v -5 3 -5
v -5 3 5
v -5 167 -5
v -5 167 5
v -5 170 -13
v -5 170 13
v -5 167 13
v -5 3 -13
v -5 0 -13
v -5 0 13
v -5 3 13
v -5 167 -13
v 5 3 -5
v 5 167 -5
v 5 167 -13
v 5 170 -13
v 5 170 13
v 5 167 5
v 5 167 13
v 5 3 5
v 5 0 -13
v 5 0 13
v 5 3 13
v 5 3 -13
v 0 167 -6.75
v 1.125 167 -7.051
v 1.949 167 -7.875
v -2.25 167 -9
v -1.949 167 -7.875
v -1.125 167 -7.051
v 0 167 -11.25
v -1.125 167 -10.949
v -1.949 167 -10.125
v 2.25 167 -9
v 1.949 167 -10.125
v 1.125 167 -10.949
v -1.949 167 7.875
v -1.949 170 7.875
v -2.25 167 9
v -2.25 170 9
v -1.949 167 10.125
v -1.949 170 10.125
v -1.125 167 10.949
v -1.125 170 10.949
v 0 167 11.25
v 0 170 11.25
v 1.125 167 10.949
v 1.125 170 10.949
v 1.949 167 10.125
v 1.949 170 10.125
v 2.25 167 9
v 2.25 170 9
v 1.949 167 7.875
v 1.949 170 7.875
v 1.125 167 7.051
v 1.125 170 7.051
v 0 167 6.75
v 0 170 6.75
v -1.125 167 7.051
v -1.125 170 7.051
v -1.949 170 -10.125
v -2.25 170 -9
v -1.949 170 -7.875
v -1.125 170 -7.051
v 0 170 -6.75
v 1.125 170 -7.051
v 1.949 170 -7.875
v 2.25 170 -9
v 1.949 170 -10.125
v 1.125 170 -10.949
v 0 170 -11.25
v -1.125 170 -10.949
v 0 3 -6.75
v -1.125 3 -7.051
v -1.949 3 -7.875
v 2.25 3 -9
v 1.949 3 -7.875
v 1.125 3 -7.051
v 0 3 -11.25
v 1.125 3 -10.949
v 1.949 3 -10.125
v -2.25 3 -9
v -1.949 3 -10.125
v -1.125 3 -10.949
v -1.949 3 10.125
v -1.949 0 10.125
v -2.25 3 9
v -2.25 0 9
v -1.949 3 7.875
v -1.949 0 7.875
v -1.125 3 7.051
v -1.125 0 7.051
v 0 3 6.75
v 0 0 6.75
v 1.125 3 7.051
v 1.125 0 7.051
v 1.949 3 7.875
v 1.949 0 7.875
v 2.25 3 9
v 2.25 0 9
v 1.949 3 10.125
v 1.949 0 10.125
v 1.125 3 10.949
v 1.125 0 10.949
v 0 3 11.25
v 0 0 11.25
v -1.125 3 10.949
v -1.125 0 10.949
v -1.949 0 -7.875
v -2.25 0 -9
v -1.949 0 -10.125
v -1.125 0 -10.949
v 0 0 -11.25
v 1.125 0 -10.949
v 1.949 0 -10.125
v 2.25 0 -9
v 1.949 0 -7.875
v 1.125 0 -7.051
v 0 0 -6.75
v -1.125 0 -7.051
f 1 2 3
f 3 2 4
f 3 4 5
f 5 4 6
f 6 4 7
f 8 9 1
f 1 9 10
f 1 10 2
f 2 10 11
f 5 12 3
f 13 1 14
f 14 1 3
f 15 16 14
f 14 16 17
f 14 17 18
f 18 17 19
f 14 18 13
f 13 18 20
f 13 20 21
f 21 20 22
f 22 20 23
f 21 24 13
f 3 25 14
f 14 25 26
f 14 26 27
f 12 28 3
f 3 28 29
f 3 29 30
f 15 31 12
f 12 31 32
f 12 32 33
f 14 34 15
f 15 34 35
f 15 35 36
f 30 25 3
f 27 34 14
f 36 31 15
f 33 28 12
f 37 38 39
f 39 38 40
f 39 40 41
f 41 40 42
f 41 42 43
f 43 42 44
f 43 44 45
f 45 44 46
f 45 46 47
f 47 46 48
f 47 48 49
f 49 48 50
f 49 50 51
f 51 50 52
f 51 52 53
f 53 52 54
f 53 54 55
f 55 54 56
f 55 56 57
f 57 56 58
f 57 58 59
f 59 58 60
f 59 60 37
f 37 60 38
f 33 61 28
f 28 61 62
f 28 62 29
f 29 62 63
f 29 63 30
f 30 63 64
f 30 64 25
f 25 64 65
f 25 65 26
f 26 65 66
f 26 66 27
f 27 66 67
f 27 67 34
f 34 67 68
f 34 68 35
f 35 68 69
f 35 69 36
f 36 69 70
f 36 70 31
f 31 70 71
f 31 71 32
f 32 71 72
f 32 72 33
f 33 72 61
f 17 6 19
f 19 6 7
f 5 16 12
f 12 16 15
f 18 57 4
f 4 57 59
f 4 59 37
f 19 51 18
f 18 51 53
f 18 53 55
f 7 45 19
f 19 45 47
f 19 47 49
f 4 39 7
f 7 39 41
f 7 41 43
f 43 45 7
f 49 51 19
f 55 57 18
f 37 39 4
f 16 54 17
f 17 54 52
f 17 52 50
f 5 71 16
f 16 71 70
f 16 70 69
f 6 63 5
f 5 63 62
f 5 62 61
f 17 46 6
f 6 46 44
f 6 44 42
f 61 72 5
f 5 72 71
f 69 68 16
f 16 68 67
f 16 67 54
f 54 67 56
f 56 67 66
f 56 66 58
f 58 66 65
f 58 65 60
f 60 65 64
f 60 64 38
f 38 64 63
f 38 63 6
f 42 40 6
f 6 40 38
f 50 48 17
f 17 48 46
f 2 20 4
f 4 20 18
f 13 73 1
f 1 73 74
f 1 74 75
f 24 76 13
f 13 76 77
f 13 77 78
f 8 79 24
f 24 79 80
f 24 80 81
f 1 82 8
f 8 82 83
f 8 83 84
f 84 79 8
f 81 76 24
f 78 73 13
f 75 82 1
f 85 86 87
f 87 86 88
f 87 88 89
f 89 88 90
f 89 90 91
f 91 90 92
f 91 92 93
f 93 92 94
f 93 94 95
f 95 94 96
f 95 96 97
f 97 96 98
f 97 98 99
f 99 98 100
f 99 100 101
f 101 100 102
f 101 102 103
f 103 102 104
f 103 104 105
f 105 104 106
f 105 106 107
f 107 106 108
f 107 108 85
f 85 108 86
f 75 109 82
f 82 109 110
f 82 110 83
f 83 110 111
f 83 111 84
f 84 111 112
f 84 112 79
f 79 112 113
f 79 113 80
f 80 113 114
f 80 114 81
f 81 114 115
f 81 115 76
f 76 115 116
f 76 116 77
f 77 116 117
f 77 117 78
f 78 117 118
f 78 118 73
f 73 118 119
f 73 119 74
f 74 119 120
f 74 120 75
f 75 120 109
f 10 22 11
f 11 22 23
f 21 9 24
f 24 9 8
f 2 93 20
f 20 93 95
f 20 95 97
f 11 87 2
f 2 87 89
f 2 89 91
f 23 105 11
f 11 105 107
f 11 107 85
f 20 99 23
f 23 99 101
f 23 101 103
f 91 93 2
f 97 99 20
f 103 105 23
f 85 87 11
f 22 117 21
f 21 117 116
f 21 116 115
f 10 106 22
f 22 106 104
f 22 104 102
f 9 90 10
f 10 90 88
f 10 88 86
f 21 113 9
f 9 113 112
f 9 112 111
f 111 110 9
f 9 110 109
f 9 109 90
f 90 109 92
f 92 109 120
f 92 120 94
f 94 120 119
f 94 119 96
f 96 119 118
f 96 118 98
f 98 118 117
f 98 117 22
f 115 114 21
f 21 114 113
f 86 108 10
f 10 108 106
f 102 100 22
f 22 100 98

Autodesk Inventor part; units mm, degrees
ref_plane "YZ Plane" through (0, 0, 0) normal (1, 0, 0) x (0, 1, 0)
ref_plane "XZ Plane" through (0, 0, 0) normal (0, 1, 0) x (-1, 0, 0)
ref_plane "XY Plane" through (0, 0, 0) normal (0, 0, 1) x (1, 0, 0)
sketch "Sketch1" plane through (0, 0, 0) normal (0, 1, 0) x (-1, 0, 0)
  line L0 (5, 5) -> (-5, 5)
  line L1 (-5, 5) -> (-5, -5)
  line L2 (-5, -5) -> (5, -5)
  line L3 (5, -5) -> (5, 5)
  line L4 (5, 5) -> (-5, -5) construction
  line L5 (-5, 5) -> (5, -5) construction
  circle A0 centre (0, 9) radius 2.25
  line L6 (5, 0) -> (7.8618, 0)
  circle A1 centre (0, -9) radius 2.25
  line L7 (5, -9) -> (5, -5)
  line L8 (-5, -9) -> (-5, -5)
  line L9 (-5, 5) -> (5, 5)
  line L10 (5, 5) -> (5, 13)
  line L11 (5, 13) -> (-5, 13)
  line L12 (-5, 13) -> (-5, 5)
  line L13 (-5, -5) -> (5, -5)
  line L14 (5, -5) -> (5, -13)
  line L15 (5, -13) -> (-5, -13)
  line L16 (-5, -13) -> (-5, -5)
  point P0 (0, 0)
  dimension "d0" = 10
  dimension "d1" = 10
  dimension "d2" = 4.5
  dimension "d4" = 4
  dimension "d17" = 4
extrude "Extrusion1" add sketch "Sketch1" along normal blind 3
sketch "Sketch2" plane through (0, 3, 0) normal (0, 1, 0) x (1, 0, 0)
  line L0 (-5, 5) -> (-5, -5) projected
  line L1 (5, -5) -> (-5, -5)
  line L2 (-5, -5) -> (-5, 5)
  line L3 (-5, 5) -> (5, 5)
  line L4 (5, 5) -> (5, -5)
  line L5 (5, -5) -> (-5, 5) construction
  line L6 (-5, -5) -> (5, 5) construction
  point P0 (0, 0)
  point P1 (-5, 9)
  point P2 (-5, -9)
  dimension "d8" = 10
extrude "Extrusion2" add sketch "Sketch2" along normal blind 82
mirror "Mirror1" about plane through (0, 85, 0) normal (0, 1, 0) of "Extrusion1", "Extrusion2"
properties part number "basket_pilar"
